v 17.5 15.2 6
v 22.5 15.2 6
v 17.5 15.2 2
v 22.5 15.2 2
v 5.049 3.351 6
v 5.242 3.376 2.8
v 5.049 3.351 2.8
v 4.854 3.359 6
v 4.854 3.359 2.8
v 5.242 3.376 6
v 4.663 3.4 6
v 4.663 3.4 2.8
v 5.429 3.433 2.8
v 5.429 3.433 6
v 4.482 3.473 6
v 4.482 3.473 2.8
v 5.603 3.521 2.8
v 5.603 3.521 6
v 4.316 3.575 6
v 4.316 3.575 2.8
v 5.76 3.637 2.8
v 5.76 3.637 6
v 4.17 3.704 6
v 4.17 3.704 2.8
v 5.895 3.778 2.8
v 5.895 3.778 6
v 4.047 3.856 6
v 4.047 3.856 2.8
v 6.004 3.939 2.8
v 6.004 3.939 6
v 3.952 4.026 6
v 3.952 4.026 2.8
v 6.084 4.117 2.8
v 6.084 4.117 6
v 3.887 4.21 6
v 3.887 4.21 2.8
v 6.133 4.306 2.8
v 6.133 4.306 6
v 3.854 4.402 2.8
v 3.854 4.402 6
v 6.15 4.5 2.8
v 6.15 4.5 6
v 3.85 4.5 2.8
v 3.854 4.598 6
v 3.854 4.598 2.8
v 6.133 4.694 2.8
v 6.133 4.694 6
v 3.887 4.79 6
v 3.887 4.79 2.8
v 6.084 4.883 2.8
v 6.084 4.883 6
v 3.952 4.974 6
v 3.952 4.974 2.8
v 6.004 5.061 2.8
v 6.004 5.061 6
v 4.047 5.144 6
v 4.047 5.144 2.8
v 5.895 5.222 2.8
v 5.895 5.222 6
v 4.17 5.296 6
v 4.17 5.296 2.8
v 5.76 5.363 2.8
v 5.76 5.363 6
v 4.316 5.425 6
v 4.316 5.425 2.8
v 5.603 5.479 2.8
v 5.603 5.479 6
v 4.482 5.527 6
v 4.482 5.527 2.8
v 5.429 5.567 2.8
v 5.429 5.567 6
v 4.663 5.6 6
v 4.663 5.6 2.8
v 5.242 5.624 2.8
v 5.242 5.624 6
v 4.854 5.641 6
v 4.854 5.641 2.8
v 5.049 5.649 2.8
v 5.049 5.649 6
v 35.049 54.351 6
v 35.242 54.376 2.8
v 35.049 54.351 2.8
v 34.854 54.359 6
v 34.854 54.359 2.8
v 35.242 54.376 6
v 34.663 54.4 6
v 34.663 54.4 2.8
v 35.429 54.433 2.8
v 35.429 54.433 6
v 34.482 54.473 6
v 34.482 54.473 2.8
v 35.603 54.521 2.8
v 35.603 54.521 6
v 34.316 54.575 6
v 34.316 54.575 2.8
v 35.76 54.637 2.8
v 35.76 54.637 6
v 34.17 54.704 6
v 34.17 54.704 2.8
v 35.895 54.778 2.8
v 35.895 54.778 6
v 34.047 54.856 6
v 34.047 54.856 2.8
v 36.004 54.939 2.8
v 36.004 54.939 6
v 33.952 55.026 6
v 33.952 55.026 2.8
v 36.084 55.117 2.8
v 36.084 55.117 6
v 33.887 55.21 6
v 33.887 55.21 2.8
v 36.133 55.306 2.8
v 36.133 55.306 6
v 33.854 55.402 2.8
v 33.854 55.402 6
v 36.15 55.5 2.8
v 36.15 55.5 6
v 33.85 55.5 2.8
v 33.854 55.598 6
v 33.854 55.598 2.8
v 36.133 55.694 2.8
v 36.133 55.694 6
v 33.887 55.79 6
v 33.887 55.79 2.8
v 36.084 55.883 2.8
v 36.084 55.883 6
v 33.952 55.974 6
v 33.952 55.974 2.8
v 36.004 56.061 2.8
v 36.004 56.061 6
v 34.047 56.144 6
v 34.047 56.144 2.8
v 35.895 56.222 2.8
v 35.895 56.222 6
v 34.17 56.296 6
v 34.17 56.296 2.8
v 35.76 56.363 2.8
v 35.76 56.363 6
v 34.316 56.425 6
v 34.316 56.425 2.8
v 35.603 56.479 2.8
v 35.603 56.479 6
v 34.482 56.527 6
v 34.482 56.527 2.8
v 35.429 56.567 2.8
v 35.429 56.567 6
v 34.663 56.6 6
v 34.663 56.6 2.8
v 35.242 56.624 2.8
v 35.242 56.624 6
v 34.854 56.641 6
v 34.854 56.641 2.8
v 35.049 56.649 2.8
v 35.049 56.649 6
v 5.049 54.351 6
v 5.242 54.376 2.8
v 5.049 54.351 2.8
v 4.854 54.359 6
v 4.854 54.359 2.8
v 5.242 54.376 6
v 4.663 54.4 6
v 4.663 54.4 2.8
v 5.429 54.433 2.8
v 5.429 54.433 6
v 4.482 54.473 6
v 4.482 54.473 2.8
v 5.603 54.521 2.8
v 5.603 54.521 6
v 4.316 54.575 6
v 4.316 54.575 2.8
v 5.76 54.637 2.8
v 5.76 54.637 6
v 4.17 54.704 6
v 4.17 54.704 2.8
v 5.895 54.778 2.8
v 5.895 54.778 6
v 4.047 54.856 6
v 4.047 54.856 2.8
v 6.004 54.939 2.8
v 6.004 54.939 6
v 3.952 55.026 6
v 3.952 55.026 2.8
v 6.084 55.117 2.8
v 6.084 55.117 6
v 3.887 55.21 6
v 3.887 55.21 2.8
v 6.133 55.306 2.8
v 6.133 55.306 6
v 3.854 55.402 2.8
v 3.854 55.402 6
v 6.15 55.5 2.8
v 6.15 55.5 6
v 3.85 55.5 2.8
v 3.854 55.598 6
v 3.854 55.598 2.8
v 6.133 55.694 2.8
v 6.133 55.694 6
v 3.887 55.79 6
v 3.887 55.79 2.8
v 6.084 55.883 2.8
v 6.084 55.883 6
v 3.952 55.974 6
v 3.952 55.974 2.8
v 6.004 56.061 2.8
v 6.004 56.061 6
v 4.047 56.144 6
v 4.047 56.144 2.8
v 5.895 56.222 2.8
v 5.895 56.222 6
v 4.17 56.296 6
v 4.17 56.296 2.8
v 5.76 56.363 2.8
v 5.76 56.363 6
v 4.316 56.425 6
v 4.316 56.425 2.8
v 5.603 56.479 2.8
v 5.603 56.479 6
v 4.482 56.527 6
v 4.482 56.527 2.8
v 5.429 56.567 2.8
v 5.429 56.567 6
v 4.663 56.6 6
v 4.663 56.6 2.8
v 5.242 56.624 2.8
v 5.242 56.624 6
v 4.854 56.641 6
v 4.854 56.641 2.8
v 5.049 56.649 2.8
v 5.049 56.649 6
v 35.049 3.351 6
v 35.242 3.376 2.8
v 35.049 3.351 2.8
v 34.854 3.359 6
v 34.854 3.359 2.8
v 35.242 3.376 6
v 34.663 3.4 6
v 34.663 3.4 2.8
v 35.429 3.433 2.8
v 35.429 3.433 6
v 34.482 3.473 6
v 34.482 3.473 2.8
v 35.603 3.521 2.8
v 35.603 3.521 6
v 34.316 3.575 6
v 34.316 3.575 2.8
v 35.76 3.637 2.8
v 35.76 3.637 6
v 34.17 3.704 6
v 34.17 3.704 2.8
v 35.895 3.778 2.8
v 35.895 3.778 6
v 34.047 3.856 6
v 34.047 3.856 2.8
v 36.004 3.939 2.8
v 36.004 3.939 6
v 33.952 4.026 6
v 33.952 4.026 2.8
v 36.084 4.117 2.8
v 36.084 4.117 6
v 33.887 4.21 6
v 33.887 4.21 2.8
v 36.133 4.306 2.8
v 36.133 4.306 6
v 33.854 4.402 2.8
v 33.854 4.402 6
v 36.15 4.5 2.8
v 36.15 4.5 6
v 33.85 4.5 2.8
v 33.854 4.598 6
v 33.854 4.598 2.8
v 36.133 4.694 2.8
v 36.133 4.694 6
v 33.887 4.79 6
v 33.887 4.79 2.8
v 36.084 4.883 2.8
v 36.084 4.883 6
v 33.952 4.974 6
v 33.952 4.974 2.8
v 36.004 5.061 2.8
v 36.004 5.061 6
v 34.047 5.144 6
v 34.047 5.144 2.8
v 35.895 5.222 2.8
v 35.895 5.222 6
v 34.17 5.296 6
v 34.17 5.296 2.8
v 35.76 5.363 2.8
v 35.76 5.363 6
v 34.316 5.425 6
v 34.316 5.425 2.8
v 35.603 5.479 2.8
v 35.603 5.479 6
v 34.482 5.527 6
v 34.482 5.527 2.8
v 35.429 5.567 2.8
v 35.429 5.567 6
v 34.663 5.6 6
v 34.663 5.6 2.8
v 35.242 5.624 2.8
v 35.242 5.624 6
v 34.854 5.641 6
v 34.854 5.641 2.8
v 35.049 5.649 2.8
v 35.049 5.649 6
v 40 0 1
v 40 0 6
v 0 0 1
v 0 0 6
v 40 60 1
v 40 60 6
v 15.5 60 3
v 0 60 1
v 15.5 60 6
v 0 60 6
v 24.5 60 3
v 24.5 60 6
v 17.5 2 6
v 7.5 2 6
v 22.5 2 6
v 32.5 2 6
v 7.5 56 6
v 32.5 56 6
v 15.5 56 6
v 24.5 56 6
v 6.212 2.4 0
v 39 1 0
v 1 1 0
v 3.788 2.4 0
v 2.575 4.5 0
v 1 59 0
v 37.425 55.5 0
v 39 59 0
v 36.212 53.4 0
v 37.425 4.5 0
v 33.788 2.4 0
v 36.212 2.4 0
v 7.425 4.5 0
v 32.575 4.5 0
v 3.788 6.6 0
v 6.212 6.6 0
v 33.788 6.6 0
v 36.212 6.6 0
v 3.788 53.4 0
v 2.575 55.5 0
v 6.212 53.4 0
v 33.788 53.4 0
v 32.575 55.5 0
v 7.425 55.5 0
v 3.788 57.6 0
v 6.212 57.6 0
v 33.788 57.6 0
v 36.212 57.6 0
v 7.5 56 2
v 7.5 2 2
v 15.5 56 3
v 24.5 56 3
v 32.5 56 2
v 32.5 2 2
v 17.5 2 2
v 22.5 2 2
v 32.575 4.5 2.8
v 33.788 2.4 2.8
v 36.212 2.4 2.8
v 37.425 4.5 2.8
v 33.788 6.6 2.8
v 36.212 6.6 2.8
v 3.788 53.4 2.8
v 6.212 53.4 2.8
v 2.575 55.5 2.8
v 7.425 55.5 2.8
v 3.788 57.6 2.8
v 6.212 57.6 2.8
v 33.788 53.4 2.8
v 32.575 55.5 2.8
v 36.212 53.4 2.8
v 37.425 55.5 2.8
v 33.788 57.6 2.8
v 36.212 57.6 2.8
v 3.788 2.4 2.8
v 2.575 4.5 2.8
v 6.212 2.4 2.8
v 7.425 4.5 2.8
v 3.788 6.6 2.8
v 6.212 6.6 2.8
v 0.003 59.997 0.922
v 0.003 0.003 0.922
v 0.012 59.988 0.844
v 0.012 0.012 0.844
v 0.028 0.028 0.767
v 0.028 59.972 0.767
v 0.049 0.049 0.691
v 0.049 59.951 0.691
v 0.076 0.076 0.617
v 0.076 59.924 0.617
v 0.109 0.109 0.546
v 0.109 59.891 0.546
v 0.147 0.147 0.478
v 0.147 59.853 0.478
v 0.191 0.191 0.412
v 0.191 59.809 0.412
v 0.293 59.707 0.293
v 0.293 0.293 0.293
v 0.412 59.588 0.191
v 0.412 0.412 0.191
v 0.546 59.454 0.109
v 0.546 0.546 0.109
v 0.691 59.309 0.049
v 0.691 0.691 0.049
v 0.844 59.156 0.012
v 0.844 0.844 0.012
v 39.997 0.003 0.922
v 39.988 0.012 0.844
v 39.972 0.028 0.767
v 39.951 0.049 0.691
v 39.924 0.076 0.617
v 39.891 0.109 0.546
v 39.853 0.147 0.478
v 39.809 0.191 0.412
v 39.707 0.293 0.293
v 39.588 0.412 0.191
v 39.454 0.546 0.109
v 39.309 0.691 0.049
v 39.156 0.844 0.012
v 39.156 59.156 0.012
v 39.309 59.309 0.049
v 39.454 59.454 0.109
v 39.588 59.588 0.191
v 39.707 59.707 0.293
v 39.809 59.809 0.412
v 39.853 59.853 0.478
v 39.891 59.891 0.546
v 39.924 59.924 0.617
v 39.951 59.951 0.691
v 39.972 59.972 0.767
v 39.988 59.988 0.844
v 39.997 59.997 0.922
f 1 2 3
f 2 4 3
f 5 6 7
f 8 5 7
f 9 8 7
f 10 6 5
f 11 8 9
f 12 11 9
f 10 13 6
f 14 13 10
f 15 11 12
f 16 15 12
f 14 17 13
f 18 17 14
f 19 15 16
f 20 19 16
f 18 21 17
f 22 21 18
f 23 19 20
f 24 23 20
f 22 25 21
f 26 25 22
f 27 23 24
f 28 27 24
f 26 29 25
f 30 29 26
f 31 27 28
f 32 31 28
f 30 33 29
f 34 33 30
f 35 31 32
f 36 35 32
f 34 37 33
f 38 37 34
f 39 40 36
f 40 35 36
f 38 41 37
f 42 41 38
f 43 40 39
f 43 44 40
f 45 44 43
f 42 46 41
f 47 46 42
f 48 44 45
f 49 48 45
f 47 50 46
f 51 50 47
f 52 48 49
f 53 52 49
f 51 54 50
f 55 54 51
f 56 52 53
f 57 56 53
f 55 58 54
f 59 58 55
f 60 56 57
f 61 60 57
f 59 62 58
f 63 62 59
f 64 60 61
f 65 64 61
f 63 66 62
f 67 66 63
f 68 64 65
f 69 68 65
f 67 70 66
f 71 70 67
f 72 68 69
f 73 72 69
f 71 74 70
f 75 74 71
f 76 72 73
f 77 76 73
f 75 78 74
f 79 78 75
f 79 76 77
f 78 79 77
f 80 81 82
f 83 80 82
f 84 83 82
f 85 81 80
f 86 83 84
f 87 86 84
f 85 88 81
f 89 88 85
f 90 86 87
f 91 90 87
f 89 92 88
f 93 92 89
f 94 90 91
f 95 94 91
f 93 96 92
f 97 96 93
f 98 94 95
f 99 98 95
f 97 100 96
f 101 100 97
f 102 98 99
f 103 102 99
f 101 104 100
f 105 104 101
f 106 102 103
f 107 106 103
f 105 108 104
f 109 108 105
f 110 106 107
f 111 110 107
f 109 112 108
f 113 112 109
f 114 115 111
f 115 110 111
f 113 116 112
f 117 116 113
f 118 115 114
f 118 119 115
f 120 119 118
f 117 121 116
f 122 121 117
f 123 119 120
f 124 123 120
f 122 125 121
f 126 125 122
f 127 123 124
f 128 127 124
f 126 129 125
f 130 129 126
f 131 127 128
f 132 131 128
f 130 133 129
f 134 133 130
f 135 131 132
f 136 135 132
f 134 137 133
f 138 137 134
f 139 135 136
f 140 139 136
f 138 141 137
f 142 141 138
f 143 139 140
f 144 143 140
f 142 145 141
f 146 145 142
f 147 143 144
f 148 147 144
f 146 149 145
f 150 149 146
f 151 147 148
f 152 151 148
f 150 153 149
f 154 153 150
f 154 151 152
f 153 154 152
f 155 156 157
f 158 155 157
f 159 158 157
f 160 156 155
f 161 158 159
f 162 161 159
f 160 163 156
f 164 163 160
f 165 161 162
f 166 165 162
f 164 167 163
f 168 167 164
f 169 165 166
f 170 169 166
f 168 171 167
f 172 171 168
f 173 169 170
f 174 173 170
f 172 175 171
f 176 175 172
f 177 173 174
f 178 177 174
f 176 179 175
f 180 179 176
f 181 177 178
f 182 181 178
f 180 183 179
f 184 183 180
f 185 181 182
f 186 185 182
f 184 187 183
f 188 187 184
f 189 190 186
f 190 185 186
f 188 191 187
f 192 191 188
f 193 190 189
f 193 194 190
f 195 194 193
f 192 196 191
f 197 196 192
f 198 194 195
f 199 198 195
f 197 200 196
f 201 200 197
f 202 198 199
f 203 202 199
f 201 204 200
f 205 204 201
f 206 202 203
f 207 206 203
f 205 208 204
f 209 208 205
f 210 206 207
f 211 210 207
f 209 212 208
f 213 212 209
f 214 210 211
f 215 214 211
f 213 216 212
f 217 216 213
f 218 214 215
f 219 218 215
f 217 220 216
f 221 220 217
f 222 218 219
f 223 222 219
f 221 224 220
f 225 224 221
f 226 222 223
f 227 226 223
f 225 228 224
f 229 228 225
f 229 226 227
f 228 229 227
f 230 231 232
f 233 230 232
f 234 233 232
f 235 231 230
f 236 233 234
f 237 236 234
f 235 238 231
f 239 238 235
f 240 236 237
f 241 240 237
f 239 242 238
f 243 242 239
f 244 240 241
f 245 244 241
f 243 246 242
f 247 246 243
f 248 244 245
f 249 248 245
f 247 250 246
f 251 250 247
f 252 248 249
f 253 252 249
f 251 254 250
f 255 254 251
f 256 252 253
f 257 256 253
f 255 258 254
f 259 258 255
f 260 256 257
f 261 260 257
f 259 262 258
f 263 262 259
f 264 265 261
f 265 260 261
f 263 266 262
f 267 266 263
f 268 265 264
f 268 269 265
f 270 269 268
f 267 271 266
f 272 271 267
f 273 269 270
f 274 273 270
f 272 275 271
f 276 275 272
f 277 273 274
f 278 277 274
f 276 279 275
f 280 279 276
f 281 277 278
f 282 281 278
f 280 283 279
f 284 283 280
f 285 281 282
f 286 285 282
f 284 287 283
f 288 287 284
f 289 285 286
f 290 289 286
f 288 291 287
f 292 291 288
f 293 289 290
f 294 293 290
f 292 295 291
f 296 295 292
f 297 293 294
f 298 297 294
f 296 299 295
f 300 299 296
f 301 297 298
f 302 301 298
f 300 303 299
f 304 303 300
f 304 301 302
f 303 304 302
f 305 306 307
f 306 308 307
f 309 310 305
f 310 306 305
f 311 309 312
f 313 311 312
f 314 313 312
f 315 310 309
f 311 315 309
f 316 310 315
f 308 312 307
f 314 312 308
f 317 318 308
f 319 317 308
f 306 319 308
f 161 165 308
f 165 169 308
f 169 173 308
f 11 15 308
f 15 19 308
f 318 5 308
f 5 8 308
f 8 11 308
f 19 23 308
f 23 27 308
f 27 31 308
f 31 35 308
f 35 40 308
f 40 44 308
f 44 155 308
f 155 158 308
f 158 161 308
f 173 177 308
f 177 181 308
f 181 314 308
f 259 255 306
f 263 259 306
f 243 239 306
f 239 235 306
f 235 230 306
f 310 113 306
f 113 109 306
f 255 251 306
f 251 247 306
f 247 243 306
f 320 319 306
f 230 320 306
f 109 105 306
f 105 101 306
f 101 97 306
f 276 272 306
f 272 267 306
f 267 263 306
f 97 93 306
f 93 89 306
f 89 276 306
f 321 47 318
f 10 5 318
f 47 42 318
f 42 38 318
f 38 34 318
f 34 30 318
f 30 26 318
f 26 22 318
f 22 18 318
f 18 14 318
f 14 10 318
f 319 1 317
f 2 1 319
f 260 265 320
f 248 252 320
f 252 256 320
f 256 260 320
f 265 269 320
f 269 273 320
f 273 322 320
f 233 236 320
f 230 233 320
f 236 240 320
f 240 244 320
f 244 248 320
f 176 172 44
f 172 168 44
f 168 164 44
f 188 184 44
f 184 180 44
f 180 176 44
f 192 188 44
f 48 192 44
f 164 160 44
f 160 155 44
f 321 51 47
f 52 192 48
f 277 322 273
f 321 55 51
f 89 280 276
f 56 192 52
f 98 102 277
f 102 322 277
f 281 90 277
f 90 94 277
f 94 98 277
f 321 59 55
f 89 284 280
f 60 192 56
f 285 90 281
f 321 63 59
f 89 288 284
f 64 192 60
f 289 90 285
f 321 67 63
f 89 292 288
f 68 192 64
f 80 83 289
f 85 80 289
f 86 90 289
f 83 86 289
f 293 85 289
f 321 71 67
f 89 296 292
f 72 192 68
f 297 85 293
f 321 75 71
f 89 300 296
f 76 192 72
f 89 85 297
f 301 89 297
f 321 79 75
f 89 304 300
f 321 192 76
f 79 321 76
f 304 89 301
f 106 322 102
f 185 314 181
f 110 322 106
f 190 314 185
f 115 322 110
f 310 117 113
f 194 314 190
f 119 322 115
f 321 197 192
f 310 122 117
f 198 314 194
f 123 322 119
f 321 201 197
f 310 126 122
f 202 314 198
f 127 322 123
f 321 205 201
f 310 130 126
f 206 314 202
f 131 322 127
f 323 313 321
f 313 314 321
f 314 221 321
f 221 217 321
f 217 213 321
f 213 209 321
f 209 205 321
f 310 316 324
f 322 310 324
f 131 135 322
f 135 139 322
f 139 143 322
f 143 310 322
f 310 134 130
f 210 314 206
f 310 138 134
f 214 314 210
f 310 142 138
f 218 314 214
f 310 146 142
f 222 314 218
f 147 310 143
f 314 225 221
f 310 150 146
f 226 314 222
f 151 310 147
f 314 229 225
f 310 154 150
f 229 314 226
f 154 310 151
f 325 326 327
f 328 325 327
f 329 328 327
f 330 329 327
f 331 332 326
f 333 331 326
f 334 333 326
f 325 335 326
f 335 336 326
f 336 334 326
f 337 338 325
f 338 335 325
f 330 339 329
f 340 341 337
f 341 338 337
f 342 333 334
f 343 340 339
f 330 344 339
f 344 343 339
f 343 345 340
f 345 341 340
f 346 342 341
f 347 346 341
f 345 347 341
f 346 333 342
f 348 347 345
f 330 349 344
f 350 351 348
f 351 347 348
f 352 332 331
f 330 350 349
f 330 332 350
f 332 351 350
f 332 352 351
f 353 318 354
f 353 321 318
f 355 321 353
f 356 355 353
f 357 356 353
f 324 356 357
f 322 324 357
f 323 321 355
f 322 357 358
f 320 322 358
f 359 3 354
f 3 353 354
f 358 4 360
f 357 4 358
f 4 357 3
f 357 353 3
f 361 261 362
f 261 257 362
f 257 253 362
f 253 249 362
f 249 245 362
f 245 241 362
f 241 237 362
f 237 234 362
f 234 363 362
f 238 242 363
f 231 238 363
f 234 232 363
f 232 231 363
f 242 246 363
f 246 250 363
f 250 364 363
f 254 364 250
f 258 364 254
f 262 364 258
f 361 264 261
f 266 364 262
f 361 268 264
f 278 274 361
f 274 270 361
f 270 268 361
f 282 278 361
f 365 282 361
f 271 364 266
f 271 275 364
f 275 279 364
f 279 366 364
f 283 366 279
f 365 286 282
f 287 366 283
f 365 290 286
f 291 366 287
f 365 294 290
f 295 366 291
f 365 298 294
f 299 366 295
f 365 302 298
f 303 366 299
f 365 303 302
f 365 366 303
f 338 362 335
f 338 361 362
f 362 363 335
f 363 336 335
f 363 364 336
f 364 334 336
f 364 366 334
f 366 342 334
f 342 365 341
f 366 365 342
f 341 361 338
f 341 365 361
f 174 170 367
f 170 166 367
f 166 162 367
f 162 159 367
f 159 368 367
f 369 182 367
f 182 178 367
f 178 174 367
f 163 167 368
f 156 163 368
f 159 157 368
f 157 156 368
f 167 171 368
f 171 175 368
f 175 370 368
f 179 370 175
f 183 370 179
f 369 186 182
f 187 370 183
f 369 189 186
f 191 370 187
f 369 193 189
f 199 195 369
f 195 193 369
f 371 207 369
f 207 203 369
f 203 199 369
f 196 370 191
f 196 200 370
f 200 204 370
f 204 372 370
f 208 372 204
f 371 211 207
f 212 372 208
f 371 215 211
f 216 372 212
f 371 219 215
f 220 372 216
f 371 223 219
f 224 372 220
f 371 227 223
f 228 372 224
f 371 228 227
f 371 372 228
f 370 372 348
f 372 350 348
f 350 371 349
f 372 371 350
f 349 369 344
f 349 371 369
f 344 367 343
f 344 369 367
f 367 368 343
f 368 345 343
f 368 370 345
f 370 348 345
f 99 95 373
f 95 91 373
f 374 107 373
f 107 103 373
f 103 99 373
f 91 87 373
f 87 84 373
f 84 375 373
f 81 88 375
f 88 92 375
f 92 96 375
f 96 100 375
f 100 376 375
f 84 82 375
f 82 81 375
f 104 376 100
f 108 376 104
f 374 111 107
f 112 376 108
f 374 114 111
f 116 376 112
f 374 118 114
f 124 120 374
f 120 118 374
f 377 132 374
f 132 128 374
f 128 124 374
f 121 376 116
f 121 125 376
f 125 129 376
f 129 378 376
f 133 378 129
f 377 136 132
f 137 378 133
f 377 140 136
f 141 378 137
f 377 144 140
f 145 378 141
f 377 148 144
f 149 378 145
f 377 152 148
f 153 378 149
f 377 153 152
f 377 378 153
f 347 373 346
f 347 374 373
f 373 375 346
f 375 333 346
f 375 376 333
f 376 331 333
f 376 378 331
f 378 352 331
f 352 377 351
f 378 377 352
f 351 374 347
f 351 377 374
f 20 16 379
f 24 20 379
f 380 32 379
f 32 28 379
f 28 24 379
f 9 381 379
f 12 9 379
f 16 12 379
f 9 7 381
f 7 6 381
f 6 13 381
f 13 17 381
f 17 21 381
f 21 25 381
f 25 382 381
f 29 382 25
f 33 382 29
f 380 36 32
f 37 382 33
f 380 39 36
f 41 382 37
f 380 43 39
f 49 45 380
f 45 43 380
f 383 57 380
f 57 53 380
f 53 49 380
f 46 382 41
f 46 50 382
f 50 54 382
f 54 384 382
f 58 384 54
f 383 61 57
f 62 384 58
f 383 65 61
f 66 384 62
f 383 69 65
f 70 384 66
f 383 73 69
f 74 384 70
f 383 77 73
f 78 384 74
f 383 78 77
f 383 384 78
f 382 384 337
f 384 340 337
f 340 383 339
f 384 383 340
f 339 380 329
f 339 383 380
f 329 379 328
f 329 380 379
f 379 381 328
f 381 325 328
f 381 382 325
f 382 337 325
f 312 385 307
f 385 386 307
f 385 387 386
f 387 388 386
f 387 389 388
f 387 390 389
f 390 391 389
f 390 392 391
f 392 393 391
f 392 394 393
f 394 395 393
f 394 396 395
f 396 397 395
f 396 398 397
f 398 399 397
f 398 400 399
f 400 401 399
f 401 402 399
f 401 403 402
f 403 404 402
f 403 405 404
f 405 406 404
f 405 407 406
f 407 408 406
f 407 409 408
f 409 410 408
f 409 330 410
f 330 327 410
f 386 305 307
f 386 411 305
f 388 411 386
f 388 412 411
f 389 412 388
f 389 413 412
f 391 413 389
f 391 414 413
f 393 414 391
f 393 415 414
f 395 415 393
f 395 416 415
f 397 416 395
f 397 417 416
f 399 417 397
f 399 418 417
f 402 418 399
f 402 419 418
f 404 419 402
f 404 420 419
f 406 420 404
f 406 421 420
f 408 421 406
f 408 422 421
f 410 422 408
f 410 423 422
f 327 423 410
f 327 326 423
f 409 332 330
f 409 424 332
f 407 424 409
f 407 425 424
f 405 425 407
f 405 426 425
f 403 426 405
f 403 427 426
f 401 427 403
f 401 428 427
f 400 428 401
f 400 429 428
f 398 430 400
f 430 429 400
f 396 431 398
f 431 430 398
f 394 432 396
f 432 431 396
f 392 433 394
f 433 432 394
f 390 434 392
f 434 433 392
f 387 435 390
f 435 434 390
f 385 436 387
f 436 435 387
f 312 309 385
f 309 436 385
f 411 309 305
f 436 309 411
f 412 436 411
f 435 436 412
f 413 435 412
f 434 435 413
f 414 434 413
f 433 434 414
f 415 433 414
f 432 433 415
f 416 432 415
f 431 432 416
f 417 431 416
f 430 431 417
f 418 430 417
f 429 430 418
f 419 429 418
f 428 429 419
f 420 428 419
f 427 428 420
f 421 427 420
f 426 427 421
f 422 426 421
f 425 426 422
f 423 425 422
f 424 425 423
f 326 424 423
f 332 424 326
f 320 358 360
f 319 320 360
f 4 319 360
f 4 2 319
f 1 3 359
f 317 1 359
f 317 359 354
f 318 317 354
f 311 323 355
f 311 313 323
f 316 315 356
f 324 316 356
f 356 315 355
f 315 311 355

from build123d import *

# Parameters (mm, degrees)
SKETCH1_W           = 60
SKETCH1_H           = 40
BOSS_EXTRUDE1_DEPTH = 6
SKETCH3_R           = 1.15
CUT_EXTRUDE2_DEPTH  = 73.360210061
SKETCH12_W          = 25
SKETCH12_H          = 40.8
CUT_EXTRUDE10_DEPTH = 4
CUT_EXTRUDE11_DEPTH = 2.8
FILLET1_R           = 1
SKETCH14_W          = 10
SKETCH14_H          = 13.2
CUT_EXTRUDE12_DEPTH = 4
SKETCH15_W          = 9
SKETCH15_H          = 4
CUT_EXTRUDE13_DEPTH = 3


with BuildPart() as part:
    # Sketch1 → Boss-Extrude1 (new body)
    with BuildSketch(Plane(origin=(0, 0, 0), x_dir=(0, 1, 0), z_dir=(0, 0, 1))):
        with Locations((30, -20)):
            Rectangle(SKETCH1_W, SKETCH1_H)
    extrude(amount=BOSS_EXTRUDE1_DEPTH)

    # Sketch3 → Cut-Extrude2 (cut, through all)
    with BuildSketch(Plane.XY.offset(6)):
        with Locations((5, 4.5)):
            Circle(SKETCH3_R)
        with Locations((35, 4.5)):
            Circle(SKETCH3_R)
        with Locations((5, 55.5)):
            Circle(SKETCH3_R)
        with Locations((35, 55.5)):
            Circle(SKETCH3_R)
    extrude(amount=-CUT_EXTRUDE2_DEPTH, mode=Mode.SUBTRACT)

    # Sketch12 → Cut-Extrude10 (cut)
    with BuildSketch(Plane.XY.offset(6)):
        with Locations((20, 35.6)):
            Rectangle(SKETCH12_W, SKETCH12_H)
    extrude(amount=-CUT_EXTRUDE10_DEPTH, mode=Mode.SUBTRACT)

    # Sketch13 → Cut-Extrude11 (cut)
    with BuildSketch(Plane(origin=(0, 0, 0), x_dir=(1, 0, 0), z_dir=(0, 0, -1))):
        Polygon((7.424871131, -55.5), (6.212435565, -53.4), (3.787564435, -53.4), (2.575128869, -55.5), (3.787564435, -57.6), (6.212435565, -57.6), align=None)
        Polygon((32.575128869, -55.5), (33.787564435, -57.6), (36.212435565, -57.6), (37.424871131, -55.5), (36.212435565, -53.4), (33.787564435, -53.4), align=None)
        Polygon((7.424871131, -4.5), (6.212435565, -2.4), (3.787564435, -2.4), (2.575128869, -4.5), (3.787564435, -6.6), (6.212435565, -6.6), align=None)
        Polygon((32.575128869, -4.5), (33.787564435, -6.6), (36.212435565, -6.6), (37.424871131, -4.5), (36.212435565, -2.4), (33.787564435, -2.4), align=None)
    extrude(amount=-CUT_EXTRUDE11_DEPTH, mode=Mode.SUBTRACT)

    # Fillet1
    fillet1_edges = [part.edges().sort_by_distance(p)[0] for p in [
        (0, 30, 0),
        (20, 60, 0),
        (40, 30, 0),
        (20, 0, 0),
    ]]
    fillet(fillet1_edges, radius=FILLET1_R)

    # Sketch14 → Cut-Extrude12 (cut)
    with BuildSketch(Plane.XY.offset(6)):
        with Locations((12.5, 8.6)):
            Rectangle(SKETCH14_W, SKETCH14_H)
        with Locations((27.5, 8.6)):
            Rectangle(SKETCH14_W, SKETCH14_H)
    extrude(amount=-CUT_EXTRUDE12_DEPTH, mode=Mode.SUBTRACT)

    # Sketch15 → Cut-Extrude13 (cut)
    with BuildSketch(Plane.XY.offset(6)):
        with Locations((20, 58)):
            Rectangle(SKETCH15_W, SKETCH15_H)
    extrude(amount=-CUT_EXTRUDE13_DEPTH, mode=Mode.SUBTRACT)


solid = part.part
